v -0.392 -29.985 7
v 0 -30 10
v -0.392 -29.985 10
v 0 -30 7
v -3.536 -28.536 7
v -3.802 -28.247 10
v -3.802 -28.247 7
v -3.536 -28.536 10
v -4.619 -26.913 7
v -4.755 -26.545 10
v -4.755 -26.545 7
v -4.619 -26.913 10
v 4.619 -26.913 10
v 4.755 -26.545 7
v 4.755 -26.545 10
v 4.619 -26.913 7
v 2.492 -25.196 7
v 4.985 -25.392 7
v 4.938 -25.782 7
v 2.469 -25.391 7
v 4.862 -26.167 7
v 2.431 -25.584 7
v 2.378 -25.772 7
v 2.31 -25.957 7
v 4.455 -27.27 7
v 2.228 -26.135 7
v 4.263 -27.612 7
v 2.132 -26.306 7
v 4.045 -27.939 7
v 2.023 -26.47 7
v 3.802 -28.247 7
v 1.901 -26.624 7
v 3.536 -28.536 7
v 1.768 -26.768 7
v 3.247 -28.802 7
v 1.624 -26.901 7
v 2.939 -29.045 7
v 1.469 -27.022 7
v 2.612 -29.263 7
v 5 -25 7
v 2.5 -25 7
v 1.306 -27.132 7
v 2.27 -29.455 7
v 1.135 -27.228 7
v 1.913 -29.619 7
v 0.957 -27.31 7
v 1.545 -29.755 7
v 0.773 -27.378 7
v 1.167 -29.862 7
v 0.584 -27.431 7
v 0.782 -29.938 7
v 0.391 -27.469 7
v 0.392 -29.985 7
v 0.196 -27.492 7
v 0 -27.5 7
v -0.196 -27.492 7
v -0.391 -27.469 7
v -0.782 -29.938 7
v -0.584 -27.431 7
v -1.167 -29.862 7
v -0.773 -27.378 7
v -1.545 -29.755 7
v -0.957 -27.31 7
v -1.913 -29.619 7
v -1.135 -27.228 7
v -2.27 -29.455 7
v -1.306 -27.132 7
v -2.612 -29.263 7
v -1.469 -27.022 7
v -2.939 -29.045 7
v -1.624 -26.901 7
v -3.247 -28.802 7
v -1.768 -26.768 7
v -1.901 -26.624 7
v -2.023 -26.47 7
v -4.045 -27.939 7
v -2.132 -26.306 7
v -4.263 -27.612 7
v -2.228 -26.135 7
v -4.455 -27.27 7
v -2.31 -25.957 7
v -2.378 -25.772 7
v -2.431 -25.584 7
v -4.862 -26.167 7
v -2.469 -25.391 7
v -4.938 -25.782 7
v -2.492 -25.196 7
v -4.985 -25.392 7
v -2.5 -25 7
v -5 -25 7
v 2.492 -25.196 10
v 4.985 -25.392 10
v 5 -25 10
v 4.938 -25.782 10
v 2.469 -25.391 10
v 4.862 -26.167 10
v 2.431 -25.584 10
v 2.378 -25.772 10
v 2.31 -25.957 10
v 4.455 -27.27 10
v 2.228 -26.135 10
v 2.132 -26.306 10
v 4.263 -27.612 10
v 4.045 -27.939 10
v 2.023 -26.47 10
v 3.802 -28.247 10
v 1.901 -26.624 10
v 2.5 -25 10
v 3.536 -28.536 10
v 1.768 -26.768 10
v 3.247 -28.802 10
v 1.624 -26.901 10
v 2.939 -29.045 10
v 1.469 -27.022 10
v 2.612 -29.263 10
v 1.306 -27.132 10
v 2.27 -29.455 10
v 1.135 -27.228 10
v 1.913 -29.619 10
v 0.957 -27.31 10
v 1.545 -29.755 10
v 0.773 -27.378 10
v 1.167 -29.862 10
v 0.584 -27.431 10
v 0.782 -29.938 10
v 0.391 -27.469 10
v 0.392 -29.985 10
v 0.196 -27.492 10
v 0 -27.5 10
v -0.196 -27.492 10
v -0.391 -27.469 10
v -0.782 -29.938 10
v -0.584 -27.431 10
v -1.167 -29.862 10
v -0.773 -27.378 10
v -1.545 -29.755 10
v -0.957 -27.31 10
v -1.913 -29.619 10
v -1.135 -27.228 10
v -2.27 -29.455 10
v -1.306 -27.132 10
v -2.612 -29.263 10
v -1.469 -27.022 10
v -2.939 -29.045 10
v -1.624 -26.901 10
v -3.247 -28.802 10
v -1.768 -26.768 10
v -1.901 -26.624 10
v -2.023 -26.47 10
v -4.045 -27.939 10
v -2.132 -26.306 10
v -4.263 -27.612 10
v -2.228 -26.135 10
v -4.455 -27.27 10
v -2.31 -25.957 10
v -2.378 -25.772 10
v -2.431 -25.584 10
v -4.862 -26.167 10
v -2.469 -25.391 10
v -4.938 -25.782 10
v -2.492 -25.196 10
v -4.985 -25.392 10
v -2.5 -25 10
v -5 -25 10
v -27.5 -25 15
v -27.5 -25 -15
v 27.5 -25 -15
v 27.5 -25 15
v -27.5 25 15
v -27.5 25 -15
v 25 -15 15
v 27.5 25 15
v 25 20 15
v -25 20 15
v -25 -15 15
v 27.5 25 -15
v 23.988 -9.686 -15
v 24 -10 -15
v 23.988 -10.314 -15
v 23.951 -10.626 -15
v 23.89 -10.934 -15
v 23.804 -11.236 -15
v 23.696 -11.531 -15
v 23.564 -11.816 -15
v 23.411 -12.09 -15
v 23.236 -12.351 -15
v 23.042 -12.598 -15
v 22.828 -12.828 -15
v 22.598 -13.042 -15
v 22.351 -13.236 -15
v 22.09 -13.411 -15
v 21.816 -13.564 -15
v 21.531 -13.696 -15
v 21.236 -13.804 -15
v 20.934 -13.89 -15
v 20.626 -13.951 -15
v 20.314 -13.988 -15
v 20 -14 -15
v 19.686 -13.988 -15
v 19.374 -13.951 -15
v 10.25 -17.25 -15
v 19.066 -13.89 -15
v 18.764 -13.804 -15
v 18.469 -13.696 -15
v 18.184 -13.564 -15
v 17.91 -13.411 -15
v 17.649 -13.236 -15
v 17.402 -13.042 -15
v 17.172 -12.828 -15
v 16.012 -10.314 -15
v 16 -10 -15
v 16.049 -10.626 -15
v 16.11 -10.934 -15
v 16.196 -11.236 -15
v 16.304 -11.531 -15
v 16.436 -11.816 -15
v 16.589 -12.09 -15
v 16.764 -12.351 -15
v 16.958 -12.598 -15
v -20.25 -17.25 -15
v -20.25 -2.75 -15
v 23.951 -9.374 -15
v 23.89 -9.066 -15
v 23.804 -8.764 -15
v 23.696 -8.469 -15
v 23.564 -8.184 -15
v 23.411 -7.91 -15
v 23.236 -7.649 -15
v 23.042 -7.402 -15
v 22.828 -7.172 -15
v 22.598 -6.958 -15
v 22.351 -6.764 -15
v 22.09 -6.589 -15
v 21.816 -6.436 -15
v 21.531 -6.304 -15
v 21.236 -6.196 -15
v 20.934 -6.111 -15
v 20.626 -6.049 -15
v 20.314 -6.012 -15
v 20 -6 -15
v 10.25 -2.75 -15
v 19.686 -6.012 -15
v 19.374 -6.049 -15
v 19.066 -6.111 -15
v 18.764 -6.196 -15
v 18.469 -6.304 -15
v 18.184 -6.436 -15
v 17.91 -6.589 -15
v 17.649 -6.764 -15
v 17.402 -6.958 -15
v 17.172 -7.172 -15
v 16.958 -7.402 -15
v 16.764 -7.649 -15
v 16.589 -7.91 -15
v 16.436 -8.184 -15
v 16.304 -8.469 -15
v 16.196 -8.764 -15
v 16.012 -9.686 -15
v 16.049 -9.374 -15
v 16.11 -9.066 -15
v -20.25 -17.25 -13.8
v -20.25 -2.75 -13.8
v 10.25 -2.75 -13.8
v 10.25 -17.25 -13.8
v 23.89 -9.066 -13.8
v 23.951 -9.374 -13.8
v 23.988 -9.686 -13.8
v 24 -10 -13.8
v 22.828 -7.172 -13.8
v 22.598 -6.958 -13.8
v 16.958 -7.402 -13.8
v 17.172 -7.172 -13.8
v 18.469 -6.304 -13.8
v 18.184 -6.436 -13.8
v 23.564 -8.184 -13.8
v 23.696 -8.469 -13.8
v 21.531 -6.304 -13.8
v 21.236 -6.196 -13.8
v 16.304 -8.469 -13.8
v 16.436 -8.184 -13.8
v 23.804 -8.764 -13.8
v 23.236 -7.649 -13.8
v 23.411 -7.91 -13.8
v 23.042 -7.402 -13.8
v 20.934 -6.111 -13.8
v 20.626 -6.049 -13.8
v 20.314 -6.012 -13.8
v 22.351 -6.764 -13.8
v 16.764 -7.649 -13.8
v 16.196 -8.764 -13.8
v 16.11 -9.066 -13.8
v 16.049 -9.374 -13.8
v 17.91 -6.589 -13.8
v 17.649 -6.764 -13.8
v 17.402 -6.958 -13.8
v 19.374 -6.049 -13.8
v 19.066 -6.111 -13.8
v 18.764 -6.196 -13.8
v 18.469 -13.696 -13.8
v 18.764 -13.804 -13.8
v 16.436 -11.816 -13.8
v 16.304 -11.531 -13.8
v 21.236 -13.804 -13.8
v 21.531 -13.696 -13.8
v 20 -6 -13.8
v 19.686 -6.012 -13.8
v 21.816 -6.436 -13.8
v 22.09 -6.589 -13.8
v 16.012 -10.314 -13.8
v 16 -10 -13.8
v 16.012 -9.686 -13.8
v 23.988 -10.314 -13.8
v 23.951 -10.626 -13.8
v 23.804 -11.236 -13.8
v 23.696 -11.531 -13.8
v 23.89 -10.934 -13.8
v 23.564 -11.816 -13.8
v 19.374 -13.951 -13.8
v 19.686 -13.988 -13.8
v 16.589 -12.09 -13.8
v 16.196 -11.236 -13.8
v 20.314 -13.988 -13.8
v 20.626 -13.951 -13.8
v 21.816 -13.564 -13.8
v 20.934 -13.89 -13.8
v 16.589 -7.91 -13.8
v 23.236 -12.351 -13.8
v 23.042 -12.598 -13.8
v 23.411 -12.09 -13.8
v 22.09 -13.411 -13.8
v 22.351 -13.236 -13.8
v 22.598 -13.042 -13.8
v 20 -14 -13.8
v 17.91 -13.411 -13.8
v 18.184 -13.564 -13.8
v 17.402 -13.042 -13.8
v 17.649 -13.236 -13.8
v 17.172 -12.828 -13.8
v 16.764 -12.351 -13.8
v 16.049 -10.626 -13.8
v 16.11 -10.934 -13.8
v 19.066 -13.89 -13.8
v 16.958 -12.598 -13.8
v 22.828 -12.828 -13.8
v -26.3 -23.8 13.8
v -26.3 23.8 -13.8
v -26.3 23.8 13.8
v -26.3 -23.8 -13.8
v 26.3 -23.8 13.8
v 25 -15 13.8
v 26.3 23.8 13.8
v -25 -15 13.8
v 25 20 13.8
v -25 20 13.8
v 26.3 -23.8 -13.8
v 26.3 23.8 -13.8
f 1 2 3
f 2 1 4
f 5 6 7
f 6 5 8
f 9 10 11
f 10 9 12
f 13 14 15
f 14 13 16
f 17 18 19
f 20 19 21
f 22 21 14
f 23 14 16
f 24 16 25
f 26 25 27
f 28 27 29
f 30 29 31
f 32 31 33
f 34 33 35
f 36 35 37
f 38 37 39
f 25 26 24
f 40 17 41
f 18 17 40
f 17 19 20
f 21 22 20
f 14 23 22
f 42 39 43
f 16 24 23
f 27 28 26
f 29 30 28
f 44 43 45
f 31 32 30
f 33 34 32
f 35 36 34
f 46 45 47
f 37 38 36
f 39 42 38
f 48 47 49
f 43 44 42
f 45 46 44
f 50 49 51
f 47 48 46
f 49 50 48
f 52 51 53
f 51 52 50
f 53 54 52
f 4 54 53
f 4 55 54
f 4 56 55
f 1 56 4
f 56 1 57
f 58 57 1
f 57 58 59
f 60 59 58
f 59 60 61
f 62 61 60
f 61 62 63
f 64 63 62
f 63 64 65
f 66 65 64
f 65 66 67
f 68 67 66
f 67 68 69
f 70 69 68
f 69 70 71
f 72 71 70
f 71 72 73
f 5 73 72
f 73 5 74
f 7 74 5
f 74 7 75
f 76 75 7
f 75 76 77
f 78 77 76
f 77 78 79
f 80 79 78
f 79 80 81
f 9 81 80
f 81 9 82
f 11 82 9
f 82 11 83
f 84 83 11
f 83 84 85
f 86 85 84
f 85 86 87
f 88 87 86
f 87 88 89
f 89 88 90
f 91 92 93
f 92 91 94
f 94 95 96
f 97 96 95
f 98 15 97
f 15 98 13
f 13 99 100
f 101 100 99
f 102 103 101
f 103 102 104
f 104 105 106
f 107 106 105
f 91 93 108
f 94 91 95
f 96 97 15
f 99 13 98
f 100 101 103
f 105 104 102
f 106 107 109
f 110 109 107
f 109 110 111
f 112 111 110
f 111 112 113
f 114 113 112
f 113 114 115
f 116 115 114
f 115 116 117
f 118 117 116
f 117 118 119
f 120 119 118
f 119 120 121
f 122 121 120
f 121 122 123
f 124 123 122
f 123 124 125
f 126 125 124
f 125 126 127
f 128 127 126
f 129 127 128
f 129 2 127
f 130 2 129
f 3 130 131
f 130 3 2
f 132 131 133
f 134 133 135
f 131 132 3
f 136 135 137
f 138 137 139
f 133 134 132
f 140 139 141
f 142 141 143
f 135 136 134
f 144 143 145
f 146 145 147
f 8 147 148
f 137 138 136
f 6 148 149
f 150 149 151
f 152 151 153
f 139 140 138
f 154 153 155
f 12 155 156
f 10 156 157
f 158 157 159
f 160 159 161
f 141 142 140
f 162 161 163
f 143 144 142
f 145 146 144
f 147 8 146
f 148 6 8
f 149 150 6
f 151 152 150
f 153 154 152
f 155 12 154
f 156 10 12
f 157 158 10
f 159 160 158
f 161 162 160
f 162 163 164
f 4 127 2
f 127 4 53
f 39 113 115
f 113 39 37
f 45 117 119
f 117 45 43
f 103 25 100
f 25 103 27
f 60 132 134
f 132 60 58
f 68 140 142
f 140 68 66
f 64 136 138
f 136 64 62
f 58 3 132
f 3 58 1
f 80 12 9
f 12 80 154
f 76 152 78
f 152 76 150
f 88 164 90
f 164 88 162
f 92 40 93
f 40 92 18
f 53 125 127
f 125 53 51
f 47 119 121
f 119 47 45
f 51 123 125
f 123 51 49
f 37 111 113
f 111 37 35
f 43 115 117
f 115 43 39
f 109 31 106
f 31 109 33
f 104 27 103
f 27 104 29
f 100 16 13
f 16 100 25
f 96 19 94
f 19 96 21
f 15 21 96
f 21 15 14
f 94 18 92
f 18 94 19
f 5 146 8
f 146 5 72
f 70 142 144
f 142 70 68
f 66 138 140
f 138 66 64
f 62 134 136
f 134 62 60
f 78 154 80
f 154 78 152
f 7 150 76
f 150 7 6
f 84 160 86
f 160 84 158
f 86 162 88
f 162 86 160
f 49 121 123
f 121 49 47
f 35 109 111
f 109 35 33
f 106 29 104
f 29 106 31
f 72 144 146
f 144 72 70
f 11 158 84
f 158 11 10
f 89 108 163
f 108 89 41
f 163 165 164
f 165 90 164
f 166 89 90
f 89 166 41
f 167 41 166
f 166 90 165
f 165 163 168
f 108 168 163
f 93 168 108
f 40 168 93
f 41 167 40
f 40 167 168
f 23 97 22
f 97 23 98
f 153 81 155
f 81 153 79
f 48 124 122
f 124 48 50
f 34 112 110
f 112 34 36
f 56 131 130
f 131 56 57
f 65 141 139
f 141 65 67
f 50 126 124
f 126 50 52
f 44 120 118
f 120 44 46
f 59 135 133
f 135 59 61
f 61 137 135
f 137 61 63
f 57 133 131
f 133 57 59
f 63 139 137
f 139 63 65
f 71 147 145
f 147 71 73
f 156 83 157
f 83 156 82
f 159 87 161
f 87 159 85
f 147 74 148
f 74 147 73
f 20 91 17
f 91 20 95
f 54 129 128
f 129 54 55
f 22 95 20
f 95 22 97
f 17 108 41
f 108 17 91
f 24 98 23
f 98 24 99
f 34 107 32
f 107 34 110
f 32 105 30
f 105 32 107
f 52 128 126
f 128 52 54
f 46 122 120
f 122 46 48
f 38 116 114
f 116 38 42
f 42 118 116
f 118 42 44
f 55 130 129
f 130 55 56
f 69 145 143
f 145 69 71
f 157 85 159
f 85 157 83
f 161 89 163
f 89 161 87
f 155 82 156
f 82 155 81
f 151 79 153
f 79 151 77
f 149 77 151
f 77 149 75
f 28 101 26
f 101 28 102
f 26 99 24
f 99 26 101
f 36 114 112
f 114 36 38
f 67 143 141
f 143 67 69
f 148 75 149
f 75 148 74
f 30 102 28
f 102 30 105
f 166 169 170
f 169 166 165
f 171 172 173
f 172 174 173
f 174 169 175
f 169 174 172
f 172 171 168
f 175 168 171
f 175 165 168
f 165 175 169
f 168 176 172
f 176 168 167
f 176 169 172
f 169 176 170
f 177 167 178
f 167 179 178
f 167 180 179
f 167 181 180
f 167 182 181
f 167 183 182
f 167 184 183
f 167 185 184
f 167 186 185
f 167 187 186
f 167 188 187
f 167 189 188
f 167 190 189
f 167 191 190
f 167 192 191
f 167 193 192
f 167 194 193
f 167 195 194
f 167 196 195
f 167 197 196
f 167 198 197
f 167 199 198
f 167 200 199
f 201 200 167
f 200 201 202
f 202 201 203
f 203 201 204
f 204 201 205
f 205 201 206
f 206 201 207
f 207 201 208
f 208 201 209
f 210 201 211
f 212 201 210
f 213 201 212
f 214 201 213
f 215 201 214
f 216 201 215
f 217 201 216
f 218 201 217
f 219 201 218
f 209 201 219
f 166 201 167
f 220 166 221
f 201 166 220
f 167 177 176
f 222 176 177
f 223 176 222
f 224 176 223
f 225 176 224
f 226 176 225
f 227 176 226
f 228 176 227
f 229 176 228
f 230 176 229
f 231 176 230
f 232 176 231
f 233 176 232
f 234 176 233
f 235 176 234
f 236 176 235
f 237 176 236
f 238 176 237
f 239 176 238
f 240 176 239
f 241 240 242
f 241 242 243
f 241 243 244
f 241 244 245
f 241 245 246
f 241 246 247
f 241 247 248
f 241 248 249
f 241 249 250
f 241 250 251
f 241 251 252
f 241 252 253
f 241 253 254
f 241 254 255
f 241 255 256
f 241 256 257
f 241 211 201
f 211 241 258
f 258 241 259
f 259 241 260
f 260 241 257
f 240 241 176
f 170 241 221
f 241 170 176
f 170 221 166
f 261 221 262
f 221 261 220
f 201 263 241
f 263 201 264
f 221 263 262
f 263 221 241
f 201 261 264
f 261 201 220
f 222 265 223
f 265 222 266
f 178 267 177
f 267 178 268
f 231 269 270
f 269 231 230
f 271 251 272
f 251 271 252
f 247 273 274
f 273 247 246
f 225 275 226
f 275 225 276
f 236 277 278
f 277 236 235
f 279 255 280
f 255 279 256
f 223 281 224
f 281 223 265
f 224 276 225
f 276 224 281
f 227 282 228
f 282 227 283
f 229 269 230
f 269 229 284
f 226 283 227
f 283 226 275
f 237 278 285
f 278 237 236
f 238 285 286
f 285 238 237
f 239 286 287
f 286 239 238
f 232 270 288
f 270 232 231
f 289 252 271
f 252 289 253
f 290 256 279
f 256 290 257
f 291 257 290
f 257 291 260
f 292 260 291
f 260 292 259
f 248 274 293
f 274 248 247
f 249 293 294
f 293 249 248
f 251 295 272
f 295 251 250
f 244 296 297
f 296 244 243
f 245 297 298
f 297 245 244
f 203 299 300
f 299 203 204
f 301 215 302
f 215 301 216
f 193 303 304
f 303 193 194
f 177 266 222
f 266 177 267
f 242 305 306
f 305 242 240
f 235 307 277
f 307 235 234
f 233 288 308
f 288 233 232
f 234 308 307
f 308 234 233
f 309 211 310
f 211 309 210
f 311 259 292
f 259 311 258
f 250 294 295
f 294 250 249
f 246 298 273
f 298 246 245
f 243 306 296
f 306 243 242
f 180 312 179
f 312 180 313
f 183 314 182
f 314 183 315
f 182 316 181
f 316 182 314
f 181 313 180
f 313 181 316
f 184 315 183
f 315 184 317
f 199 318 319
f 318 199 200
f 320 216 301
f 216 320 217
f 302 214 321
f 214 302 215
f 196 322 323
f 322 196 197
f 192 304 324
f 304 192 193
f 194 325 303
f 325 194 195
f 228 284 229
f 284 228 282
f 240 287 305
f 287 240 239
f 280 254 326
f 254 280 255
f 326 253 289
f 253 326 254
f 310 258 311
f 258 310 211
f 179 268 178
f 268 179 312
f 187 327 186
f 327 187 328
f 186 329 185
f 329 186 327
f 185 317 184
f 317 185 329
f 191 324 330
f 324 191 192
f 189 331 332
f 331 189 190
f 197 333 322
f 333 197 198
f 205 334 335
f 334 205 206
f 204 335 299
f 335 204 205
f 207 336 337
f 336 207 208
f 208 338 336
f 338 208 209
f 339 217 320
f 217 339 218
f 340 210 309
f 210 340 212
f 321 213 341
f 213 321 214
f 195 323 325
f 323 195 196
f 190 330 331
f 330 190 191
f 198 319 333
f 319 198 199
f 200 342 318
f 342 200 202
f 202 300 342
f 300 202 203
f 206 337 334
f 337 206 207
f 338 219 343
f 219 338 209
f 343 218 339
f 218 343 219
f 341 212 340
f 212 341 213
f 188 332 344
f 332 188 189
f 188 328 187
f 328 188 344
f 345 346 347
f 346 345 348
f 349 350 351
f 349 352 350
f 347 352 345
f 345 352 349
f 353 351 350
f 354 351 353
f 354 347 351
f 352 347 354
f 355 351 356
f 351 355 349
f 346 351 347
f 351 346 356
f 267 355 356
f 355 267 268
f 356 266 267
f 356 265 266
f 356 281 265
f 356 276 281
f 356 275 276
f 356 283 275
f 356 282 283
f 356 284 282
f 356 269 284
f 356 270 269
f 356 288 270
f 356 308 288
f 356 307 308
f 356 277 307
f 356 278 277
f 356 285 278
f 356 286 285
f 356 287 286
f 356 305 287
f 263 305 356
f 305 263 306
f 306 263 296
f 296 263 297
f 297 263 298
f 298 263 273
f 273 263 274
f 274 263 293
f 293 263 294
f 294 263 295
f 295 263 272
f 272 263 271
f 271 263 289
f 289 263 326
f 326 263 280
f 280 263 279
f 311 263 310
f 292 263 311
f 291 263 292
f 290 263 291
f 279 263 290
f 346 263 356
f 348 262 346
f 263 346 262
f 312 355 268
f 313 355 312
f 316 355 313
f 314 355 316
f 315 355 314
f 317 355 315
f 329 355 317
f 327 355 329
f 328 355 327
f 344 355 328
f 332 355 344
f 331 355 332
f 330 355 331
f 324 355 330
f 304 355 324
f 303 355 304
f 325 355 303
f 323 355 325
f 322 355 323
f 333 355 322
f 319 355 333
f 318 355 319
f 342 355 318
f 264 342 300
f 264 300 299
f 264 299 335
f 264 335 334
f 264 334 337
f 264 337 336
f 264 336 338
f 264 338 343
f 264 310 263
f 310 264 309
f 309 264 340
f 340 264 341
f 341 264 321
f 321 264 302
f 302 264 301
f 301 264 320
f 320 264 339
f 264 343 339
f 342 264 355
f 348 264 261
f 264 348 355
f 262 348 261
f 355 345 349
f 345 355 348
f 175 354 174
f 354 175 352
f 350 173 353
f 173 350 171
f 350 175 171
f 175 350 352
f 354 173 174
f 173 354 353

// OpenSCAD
difference() {
    union() {
        cube([55, 50, 30], center=true);
        translate([0, -25, 7]) {
            roundtop();
        }
    }
    translate([-5, -10, -10]) {
        cube([30.5, 14.5, 30], center=true);
    }
    translate([20,-10,0]) {
        cylinder(d=8, h=80, center=true, $fn=80);
    }

    // spare out inner part
    cube([52.6, 47.6, 27.6], center=true);
    
    // spare out back side to load battery
    translate([- 25.0, -15, 13]) {
        cube([50, 35, 5]);
    }
}



module roundtop() {
    difference() {
        cylinder(d=10, h=3, $fn=80);
        translate([-5, 0, 0]) {
            cube([10, 10, 4]);
        }
        cylinder(d=5, h=3, $fn=80);
    }
}
